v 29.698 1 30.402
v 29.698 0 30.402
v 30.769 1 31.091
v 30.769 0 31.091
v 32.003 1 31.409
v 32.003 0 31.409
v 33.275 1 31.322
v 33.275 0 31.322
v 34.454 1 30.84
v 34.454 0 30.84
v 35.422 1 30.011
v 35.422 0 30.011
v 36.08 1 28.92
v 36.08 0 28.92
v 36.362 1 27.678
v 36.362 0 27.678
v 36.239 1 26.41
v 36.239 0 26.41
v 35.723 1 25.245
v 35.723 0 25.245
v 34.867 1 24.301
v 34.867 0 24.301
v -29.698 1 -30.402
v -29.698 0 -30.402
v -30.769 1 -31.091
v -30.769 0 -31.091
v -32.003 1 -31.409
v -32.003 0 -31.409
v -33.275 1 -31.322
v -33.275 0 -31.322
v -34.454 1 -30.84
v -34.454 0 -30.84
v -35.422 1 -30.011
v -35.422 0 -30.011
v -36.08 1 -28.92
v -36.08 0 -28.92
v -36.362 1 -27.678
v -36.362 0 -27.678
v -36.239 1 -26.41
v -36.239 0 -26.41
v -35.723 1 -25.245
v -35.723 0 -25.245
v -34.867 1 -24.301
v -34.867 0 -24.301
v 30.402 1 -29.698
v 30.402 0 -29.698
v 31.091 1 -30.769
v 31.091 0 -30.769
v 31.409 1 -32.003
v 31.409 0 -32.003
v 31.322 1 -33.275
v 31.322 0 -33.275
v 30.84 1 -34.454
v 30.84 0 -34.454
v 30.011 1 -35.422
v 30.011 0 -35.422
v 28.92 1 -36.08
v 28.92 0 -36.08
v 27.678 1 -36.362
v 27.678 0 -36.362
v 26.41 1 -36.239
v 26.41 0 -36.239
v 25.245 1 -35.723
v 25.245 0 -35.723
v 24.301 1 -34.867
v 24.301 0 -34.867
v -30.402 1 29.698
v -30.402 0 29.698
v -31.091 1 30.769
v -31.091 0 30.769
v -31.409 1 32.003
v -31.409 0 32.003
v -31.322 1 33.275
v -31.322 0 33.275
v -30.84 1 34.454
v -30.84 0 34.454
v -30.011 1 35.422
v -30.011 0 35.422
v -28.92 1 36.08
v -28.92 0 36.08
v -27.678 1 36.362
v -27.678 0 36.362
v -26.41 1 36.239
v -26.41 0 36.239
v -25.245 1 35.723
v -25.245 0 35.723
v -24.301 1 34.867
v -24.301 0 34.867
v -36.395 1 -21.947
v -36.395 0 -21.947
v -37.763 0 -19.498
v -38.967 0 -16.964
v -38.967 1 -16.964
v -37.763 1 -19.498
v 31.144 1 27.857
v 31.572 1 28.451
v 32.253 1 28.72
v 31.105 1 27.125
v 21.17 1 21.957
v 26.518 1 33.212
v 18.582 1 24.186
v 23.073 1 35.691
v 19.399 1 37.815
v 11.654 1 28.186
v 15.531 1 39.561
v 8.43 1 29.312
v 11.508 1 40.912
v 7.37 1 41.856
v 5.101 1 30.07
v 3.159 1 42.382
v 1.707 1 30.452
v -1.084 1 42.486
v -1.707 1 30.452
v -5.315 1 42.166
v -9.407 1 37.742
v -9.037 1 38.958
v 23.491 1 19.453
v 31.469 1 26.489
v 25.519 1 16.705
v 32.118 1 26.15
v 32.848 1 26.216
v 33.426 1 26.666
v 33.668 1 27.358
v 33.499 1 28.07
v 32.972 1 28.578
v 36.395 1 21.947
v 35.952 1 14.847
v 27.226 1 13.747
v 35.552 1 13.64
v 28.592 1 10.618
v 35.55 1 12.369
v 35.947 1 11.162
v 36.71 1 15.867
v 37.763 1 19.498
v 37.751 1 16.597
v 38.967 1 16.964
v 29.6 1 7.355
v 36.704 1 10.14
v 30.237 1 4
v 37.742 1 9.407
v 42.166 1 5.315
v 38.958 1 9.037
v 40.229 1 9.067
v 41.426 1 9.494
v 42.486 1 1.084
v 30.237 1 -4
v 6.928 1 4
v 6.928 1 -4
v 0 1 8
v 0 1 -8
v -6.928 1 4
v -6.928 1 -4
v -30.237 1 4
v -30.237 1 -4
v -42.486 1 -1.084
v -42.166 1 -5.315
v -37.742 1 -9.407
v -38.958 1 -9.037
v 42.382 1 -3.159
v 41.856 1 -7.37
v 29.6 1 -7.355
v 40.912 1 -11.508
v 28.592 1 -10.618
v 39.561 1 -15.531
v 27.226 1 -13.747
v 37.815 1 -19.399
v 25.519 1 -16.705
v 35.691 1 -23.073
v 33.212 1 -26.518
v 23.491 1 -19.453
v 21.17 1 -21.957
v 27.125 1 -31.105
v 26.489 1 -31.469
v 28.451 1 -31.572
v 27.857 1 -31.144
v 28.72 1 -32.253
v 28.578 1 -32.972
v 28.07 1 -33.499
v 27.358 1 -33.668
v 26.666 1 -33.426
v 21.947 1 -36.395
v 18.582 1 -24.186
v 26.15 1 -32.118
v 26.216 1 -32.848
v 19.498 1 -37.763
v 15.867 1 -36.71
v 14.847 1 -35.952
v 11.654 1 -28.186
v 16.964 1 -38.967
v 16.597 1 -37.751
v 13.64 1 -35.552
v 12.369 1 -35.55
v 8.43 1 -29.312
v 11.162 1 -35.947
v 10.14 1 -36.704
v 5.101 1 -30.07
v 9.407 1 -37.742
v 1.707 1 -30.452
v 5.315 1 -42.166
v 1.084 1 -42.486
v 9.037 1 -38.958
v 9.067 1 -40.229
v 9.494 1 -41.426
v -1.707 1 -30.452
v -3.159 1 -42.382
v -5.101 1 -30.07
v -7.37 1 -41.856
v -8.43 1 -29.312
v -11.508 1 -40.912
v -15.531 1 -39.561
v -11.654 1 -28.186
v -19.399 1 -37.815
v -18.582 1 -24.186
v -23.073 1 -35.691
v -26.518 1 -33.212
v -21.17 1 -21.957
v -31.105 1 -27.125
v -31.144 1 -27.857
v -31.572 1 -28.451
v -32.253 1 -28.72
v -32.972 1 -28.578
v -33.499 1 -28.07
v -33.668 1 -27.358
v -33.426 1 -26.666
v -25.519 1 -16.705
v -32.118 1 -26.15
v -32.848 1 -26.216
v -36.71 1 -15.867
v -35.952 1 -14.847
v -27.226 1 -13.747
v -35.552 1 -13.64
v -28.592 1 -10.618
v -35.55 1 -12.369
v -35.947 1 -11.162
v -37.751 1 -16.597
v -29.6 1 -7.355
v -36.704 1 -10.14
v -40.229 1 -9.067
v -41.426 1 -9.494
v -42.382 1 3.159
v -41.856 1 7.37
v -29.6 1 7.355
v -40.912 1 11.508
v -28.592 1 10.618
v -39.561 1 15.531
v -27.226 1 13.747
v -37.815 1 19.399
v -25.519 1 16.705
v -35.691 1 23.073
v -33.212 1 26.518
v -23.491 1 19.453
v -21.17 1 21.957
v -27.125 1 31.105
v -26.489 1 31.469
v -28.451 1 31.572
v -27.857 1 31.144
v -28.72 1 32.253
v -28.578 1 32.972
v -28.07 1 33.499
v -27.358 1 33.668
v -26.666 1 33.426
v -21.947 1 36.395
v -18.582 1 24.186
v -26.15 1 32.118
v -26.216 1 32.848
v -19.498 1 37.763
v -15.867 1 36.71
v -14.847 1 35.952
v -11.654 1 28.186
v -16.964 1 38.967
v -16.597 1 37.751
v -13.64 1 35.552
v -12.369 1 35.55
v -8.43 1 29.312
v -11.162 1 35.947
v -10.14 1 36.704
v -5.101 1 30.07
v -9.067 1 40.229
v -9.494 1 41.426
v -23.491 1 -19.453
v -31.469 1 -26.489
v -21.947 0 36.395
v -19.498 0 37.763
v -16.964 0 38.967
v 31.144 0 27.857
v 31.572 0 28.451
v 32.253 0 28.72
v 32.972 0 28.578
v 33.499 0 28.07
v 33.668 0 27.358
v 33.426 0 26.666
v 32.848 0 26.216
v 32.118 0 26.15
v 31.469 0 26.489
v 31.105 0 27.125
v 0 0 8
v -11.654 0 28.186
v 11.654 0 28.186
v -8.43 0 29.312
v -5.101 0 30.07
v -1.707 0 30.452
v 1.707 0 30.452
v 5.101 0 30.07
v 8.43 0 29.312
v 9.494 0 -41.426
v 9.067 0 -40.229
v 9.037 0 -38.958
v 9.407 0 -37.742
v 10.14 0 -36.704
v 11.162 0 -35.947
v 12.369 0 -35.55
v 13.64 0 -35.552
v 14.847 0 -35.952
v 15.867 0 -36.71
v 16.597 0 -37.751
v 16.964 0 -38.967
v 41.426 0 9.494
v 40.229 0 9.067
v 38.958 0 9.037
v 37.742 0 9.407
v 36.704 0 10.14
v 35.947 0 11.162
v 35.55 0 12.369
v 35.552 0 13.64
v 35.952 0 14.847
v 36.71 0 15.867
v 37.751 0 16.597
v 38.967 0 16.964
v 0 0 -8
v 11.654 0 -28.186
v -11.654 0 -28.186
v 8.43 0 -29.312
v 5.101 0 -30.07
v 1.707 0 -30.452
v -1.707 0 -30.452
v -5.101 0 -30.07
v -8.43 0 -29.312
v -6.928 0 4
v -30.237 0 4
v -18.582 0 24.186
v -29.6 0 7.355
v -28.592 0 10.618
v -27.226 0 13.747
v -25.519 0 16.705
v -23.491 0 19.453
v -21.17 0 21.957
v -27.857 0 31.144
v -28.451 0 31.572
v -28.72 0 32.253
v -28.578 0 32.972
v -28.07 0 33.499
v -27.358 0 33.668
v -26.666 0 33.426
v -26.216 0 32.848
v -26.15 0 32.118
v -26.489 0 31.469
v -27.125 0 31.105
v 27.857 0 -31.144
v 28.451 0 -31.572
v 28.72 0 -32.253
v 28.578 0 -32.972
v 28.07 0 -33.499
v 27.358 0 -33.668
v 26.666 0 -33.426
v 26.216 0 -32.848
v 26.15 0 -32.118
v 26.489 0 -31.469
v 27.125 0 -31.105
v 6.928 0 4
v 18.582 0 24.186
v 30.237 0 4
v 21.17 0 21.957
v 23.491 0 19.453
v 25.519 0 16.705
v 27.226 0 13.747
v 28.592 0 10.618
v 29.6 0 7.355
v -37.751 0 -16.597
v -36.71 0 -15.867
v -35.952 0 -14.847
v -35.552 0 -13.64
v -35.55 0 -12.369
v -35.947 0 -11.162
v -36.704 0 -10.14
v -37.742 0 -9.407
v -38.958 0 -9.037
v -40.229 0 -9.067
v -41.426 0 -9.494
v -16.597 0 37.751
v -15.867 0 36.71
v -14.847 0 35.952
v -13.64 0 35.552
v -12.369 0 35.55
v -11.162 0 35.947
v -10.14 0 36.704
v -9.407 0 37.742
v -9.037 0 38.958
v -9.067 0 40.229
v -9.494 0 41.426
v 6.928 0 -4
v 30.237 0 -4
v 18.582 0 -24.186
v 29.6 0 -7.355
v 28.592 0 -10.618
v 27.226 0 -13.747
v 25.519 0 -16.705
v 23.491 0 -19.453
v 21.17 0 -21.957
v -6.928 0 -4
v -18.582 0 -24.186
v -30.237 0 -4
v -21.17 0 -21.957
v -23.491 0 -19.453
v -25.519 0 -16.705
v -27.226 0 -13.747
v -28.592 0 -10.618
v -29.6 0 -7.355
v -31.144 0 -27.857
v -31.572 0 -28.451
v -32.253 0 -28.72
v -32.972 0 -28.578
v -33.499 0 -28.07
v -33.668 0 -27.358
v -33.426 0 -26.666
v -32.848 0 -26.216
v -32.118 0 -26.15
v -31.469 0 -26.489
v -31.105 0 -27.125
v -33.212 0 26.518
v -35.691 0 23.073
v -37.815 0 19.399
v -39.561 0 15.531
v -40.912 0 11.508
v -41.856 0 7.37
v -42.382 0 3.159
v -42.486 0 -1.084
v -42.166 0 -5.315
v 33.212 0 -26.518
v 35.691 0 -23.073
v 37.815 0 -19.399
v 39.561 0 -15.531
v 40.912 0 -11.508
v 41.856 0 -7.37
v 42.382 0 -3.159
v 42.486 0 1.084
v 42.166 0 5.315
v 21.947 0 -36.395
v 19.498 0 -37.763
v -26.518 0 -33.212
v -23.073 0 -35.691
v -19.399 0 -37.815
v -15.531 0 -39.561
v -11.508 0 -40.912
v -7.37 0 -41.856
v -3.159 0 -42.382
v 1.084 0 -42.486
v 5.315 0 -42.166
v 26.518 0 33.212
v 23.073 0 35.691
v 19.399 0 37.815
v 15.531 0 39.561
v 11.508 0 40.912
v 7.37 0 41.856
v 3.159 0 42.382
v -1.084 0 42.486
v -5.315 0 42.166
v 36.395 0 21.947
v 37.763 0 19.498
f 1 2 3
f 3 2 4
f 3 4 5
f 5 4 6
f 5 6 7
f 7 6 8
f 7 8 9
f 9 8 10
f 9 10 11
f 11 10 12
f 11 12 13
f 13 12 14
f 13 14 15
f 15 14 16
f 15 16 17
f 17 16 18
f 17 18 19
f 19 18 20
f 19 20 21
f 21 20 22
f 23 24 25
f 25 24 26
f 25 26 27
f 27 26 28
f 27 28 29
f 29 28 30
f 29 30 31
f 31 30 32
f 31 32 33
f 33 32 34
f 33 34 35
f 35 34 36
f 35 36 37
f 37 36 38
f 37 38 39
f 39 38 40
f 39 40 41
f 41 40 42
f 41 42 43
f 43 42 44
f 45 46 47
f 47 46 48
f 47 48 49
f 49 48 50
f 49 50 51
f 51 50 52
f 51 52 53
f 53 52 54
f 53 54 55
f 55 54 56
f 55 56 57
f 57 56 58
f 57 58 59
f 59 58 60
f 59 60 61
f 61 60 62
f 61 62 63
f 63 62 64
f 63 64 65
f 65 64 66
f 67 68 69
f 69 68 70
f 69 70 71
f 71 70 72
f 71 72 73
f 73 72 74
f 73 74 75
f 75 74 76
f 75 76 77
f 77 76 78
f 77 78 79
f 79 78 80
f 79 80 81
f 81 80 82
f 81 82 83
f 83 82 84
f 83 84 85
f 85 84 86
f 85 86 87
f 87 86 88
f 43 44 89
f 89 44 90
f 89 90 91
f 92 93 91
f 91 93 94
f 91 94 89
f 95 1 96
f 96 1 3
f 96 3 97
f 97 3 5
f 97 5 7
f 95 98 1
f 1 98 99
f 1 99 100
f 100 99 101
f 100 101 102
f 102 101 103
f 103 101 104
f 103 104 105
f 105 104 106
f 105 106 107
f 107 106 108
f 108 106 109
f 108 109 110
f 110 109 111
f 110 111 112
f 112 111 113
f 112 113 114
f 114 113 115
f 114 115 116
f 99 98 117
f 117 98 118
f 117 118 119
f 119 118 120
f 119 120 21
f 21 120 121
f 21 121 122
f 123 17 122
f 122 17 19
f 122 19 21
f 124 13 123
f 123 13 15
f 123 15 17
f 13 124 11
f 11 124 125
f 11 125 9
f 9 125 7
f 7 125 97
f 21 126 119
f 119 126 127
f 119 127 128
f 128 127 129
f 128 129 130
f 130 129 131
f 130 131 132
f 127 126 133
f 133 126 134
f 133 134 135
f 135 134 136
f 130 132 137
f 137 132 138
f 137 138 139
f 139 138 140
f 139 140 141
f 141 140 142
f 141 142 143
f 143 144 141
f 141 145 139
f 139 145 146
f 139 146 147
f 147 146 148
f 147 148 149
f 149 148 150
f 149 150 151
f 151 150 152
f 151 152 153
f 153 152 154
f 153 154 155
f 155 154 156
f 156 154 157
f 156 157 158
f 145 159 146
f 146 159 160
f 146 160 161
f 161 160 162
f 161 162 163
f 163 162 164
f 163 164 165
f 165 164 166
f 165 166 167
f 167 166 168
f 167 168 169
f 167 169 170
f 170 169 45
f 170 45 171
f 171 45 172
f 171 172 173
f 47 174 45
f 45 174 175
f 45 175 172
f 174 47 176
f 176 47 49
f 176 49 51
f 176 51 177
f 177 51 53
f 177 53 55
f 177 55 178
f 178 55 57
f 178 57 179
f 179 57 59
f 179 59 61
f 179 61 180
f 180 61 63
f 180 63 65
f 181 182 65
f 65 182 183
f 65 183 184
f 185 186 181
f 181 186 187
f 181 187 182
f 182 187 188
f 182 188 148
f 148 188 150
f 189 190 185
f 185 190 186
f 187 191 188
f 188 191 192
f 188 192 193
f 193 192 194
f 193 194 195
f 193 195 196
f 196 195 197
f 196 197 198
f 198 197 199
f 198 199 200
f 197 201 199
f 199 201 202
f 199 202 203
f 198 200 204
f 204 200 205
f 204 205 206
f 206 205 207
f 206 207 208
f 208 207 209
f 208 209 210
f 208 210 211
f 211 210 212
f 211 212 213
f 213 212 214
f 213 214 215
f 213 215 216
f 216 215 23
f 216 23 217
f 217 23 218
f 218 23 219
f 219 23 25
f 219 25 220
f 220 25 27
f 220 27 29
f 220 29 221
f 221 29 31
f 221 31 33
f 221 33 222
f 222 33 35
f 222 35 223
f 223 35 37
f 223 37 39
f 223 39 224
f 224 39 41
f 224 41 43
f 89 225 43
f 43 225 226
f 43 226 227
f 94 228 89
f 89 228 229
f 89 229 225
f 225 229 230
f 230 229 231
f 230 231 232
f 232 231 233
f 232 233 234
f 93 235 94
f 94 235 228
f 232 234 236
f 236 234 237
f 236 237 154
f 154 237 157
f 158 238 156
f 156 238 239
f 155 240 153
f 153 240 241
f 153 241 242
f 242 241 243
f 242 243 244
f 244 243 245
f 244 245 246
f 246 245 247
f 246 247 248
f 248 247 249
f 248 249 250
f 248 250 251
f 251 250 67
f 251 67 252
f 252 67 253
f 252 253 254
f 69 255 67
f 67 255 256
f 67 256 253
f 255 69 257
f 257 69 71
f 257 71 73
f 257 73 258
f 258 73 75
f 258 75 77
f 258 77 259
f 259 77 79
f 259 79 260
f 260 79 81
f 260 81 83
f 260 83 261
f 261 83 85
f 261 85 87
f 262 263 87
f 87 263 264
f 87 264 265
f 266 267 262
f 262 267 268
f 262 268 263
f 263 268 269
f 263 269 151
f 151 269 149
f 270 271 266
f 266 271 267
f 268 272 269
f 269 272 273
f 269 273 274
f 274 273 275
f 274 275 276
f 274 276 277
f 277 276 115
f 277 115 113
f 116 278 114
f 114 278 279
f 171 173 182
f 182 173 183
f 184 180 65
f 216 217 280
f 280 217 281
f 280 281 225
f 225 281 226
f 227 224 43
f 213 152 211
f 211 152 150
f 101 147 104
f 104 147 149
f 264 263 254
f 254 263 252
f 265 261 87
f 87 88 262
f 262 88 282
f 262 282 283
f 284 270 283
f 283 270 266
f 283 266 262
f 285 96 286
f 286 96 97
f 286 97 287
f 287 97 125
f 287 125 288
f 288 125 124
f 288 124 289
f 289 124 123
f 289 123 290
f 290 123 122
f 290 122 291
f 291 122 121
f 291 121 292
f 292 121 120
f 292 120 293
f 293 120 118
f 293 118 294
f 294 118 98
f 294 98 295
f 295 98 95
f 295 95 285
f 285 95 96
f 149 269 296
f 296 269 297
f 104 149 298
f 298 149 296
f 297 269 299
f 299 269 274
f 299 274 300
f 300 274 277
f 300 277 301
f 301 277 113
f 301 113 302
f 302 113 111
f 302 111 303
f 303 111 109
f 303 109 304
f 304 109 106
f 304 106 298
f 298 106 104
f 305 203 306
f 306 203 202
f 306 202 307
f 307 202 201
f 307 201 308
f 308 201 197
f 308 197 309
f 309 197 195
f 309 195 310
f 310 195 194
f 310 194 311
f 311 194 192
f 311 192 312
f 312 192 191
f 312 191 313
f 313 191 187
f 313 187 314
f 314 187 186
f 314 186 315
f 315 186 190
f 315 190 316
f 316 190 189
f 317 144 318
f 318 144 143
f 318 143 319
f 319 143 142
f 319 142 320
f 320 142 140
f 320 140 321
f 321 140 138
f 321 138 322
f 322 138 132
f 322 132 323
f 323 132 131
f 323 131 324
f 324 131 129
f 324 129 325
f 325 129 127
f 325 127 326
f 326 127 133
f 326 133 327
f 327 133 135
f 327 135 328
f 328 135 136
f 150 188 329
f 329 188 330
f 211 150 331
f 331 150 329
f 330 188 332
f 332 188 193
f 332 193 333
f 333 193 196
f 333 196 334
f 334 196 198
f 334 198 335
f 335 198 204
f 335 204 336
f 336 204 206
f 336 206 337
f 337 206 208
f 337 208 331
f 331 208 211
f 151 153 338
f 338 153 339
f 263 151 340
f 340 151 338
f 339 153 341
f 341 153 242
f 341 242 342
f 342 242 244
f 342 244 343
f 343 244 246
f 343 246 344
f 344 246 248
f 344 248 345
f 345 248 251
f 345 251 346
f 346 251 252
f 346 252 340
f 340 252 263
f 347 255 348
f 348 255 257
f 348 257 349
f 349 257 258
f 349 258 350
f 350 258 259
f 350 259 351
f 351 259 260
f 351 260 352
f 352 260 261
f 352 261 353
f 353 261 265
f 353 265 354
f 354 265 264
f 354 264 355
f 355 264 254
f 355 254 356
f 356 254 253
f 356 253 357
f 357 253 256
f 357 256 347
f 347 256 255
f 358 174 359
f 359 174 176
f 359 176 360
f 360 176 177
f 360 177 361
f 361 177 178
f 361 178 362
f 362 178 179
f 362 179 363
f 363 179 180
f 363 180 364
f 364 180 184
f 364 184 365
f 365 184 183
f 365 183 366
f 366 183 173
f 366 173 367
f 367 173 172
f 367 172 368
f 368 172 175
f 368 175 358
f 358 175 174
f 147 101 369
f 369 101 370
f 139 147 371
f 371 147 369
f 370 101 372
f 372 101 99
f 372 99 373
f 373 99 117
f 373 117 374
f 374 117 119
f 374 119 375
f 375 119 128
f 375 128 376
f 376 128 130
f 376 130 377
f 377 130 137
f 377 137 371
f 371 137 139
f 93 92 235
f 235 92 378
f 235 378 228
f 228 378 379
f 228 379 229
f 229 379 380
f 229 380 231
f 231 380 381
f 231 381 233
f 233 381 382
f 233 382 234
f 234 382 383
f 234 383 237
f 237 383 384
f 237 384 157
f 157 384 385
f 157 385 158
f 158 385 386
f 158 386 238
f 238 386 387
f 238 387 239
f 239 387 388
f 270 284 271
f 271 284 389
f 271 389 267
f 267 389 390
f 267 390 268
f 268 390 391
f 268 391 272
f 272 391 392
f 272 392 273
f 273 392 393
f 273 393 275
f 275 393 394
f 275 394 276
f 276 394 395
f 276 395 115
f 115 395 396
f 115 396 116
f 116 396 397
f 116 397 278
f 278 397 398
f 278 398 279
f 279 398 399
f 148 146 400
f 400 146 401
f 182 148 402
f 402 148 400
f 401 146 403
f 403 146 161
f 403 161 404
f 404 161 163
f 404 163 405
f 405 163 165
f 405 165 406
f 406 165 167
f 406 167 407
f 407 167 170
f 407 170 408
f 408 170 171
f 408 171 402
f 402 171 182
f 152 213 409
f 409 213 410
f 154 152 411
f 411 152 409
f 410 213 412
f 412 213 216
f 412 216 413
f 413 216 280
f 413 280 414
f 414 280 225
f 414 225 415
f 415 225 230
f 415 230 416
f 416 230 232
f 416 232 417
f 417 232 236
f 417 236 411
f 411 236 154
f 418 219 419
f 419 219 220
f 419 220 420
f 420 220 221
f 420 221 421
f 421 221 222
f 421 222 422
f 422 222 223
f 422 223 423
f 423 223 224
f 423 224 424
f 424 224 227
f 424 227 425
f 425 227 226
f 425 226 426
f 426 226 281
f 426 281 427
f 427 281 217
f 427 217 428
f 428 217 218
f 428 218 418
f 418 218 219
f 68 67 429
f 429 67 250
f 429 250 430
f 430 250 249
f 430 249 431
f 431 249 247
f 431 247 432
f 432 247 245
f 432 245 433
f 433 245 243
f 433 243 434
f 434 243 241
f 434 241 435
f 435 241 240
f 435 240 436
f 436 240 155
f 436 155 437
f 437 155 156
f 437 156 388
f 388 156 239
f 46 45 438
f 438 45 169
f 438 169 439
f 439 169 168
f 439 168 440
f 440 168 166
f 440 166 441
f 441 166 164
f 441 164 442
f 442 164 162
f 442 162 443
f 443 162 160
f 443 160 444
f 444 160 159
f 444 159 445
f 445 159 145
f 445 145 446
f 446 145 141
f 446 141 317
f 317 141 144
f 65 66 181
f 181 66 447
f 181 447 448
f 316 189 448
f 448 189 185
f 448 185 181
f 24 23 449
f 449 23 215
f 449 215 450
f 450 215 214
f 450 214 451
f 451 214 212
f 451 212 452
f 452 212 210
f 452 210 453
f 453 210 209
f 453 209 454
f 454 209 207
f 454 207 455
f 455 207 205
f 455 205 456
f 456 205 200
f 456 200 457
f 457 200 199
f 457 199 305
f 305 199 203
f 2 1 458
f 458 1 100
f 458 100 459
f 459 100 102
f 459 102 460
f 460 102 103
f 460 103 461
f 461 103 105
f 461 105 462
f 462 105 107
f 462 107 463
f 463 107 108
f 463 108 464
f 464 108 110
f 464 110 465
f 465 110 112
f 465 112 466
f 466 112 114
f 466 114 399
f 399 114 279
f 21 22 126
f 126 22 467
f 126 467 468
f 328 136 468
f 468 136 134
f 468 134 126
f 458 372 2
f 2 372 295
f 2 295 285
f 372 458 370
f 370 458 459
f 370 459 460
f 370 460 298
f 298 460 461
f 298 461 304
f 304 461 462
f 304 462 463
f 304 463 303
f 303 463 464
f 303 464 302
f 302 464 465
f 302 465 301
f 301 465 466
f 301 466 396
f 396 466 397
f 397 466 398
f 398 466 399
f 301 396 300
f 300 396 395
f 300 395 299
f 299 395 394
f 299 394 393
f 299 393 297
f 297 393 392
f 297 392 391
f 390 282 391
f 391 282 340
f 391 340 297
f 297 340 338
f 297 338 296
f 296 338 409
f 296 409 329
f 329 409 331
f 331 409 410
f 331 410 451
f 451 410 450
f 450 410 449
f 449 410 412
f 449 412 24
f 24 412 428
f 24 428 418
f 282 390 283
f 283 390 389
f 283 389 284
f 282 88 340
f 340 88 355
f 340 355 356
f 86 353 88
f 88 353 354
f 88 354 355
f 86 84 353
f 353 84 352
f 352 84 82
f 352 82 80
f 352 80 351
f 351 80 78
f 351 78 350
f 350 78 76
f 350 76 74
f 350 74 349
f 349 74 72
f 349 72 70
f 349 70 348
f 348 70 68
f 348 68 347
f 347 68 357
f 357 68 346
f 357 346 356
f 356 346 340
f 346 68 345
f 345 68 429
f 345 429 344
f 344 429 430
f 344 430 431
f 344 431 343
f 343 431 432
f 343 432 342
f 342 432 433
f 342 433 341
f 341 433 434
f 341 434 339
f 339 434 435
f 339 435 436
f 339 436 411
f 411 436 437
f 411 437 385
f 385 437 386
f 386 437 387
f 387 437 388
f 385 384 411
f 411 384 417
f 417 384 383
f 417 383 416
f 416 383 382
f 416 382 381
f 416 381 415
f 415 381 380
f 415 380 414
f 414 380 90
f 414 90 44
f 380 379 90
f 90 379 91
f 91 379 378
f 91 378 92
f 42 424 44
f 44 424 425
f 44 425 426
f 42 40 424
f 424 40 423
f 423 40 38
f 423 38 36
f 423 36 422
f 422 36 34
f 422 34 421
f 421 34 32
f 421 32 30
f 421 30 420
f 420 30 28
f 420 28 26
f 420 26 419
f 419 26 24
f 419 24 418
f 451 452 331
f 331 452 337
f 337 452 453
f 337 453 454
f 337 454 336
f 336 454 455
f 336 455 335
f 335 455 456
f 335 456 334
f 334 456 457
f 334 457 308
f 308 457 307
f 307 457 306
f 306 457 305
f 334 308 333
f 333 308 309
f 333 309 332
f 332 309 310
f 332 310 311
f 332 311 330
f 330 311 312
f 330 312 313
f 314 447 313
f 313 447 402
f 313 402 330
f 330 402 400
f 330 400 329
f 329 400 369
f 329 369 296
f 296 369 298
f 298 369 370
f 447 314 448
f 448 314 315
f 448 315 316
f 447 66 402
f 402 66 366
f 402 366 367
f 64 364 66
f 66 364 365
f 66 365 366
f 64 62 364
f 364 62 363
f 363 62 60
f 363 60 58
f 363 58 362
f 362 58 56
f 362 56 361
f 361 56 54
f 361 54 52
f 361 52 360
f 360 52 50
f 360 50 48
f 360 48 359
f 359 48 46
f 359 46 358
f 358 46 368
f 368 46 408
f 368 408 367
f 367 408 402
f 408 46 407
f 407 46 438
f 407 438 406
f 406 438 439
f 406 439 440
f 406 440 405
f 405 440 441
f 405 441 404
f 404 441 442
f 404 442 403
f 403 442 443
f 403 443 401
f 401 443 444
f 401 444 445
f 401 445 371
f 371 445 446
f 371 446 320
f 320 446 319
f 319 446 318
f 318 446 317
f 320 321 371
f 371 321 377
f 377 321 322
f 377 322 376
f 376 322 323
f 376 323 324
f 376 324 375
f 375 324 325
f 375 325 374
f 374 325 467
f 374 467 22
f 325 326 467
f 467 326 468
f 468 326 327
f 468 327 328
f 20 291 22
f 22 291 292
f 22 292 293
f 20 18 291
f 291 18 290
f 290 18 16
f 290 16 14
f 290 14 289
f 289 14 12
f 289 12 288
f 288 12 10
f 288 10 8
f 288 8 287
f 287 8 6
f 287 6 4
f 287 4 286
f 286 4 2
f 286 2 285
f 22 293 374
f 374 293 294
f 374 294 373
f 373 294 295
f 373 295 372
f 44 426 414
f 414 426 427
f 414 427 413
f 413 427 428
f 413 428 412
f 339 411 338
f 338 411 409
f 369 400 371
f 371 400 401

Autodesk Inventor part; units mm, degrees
ref_plane "YZ Plane" through (0, 0, 0) normal (1, 0, 0) x (0, 1, 0)
ref_plane "XZ Plane" through (0, 0, 0) normal (0, 1, 0) x (-1, 0, 0)
sketch "スケッチ1" plane through (0, 0, 0) normal (0, 1, 0) x (-1, 0, 0)
  circle A0 centre (0, 0) radius 42.5
  dimension "d0" = 85
extrude "押し出し1" add sketch "スケッチ1" along normal blind 1
sketch "スケッチ2" plane through (0, 0, 0) normal (0, -1, 0) x (1, 0, 0)
  circle A0 centre (-27.4257, 32.3702) radius 1.3 projected
  circle A1 centre (32.3702, 27.4257) radius 1.3 projected
  circle A2 centre (27.4257, -32.3702) radius 1.3 projected
  circle A3 centre (-32.3702, -27.4257) radius 1.3 projected
  circle A4 centre (-32.3702, -27.4257) radius 4
  circle A5 centre (-27.4257, 32.3702) radius 4
  circle A6 centre (27.4257, -32.3702) radius 4
  circle A7 centre (32.3702, 27.4257) radius 4
  circle A8 centre (-13, 39.5) radius 1.35 projected
  circle A9 centre (39.5, 13) radius 1.35 projected
  circle A10 centre (13, -39.5) radius 1.35 projected
  circle A11 centre (-39.5, -13) radius 1.35 projected
  circle A12 centre (-39.5, -13) radius 4
  circle A13 centre (-13, 39.5) radius 4
  circle A14 centre (39.5, 13) radius 4
  circle A15 centre (13, -39.5) radius 4
  line L0 (17.7859, 38.8061) -> (-24.7141, -34.8061)
  line L1 (-24.7141, -34.8061) -> (-17.7859, -38.8061)
  line L2 (-17.7859, -38.8061) -> (24.7141, 34.8061)
  line L3 (24.7141, 34.8061) -> (17.7859, 38.8061)
  line L4 (17.7859, 38.8061) -> (-17.7859, -38.8061) construction
  line L5 (-24.7141, -34.8061) -> (24.7141, 34.8061) construction
  line L6 (17.7859, -38.8061) -> (-24.7141, 34.8061)
  line L7 (-24.7141, 34.8061) -> (-17.7859, 38.8061)
  line L8 (-17.7859, 38.8061) -> (24.7141, -34.8061)
  line L9 (24.7141, -34.8061) -> (17.7859, -38.8061)
  line L10 (17.7859, -38.8061) -> (-17.7859, 38.8061) construction
  line L11 (-24.7141, 34.8061) -> (24.7141, -34.8061) construction
  line L12 (42.5, -4) -> (-42.5, -4)
  line L13 (-42.5, -4) -> (-42.5, 4)
  line L14 (-42.5, 4) -> (42.5, 4)
  line L15 (42.5, 4) -> (42.5, -4)
  line L16 (42.5, -4) -> (-42.5, 4) construction
  line L17 (-42.5, -4) -> (42.5, 4) construction
  line L18 (-42.5, 24.5374) -> (0, 49.0748) construction
  line L19 (0, 49.0748) -> (42.5, 24.5374) construction
  line L20 (42.5, 24.5374) -> (42.5, -24.5374) construction
  line L21 (42.5, -24.5374) -> (0, -49.0748) construction
  line L22 (0, -49.0748) -> (-42.5, -24.5374) construction
  line L23 (-42.5, -24.5374) -> (-42.5, 24.5374) construction
  circle A16 centre (0, 0) radius 42.5 projected
  circle A17 centre (0, 0) radius 30.5
  point P0 (-11.6542, -28.1856)
  point P1 (11.6542, -28.1856)
  point P2 (0, -8)
  point P3 (18.5824, -24.1856)
  point P4 (30.2366, -4)
  point P5 (6.9282, -4)
  point P6 (30.2366, 4)
  point P7 (18.5824, 24.1856)
  point P8 (6.9282, 4)
  point P9 (11.6542, 28.1856)
  point P10 (-11.6542, 28.1856)
  point P11 (0, 8)
  point P12 (-18.5824, 24.1856)
  point P13 (-30.2366, 4)
  point P14 (-6.9282, 4)
  point P15 (-30.2366, -4)
  point P16 (-18.5824, -24.1856)
  point P17 (-6.9282, -4)
  point P18 (-26.4694, 33.2509)
  point P19 (-28.4514, 31.5716)
  point P20 (-33.2509, -26.4694)
  point P21 (-31.5716, -28.4514)
  dimension "d3" = 8
  dimension "d6" = 8
  dimension "d7" = 12
extrude "押し出し2" cut sketch "スケッチ2" against normal through all contours A0 A16 | L6 L14 A17 | A17 L0 L8 | L12 L0 A17 | A16 A8 A13 | A13 A16 A8 | A16 A11 A12 | A12 A16 A11 | A17 L14 L2 | A16 A8 | A8 A16 | L2 L6 A17 | A16 A11 | A11 A16 | L12 A17 L8 | A16 A3 | A16 A10 A15 | A15 A16 A10 | A16 A1 | A1 A16 | A16 A9 A14 | A14 A16 A9 | A16 A10 | A10 A16 | A16 A9 | A9 A16 | A16 A2 | A2 A16 picked at (-27.1376, 32.113) picked at (-32.0736, -27.1791)
sketch "スケッチ3" plane through (0, 0, 0) normal (0, -1, 0) x (1, 0, 0)
  arc A0 (-31.5716, -28.4514) -> (-33.2509, -26.4694) centre (-32.3702, -27.4257) ccw projected
  arc A1 (-28.4514, 31.5716) -> (-26.4694, 33.2509) centre (-27.4257, 32.3702) ccw projected
  arc A2 (31.5716, 28.4514) -> (33.2509, 26.4694) centre (32.3702, 27.4257) ccw projected
  arc A3 (28.4514, -31.5716) -> (26.4694, -33.2509) centre (27.4257, -32.3702) ccw projected
  circle A4 centre (-32.3702, -27.4257) radius 1.3
  circle A5 centre (-27.4257, 32.3702) radius 1.3
  circle A6 centre (32.3702, 27.4257) radius 1.3
  circle A7 centre (27.4257, -32.3702) radius 1.3
  circle A8 centre (-32.3702, -27.4257) radius 4
  circle A9 centre (-27.4257, 32.3702) radius 4
  circle A10 centre (32.3702, 27.4257) radius 4
  circle A11 centre (27.4257, -32.3702) radius 4
  point P0 (0, 0)
  point P1 (28.4514, -31.5716)
  point P2 (-26.4694, 33.2509)
  dimension "d10" = 8
ref_plane "作業平面1" through (-124.0859, 3.5, -124.0859) normal (0, 1, 0) x (0.0824, 0, 0.9966)
extrude "押し出し3" add sketch "スケッチ3" against normal up to surface (1 mm away)
properties part number "battery_cover"
